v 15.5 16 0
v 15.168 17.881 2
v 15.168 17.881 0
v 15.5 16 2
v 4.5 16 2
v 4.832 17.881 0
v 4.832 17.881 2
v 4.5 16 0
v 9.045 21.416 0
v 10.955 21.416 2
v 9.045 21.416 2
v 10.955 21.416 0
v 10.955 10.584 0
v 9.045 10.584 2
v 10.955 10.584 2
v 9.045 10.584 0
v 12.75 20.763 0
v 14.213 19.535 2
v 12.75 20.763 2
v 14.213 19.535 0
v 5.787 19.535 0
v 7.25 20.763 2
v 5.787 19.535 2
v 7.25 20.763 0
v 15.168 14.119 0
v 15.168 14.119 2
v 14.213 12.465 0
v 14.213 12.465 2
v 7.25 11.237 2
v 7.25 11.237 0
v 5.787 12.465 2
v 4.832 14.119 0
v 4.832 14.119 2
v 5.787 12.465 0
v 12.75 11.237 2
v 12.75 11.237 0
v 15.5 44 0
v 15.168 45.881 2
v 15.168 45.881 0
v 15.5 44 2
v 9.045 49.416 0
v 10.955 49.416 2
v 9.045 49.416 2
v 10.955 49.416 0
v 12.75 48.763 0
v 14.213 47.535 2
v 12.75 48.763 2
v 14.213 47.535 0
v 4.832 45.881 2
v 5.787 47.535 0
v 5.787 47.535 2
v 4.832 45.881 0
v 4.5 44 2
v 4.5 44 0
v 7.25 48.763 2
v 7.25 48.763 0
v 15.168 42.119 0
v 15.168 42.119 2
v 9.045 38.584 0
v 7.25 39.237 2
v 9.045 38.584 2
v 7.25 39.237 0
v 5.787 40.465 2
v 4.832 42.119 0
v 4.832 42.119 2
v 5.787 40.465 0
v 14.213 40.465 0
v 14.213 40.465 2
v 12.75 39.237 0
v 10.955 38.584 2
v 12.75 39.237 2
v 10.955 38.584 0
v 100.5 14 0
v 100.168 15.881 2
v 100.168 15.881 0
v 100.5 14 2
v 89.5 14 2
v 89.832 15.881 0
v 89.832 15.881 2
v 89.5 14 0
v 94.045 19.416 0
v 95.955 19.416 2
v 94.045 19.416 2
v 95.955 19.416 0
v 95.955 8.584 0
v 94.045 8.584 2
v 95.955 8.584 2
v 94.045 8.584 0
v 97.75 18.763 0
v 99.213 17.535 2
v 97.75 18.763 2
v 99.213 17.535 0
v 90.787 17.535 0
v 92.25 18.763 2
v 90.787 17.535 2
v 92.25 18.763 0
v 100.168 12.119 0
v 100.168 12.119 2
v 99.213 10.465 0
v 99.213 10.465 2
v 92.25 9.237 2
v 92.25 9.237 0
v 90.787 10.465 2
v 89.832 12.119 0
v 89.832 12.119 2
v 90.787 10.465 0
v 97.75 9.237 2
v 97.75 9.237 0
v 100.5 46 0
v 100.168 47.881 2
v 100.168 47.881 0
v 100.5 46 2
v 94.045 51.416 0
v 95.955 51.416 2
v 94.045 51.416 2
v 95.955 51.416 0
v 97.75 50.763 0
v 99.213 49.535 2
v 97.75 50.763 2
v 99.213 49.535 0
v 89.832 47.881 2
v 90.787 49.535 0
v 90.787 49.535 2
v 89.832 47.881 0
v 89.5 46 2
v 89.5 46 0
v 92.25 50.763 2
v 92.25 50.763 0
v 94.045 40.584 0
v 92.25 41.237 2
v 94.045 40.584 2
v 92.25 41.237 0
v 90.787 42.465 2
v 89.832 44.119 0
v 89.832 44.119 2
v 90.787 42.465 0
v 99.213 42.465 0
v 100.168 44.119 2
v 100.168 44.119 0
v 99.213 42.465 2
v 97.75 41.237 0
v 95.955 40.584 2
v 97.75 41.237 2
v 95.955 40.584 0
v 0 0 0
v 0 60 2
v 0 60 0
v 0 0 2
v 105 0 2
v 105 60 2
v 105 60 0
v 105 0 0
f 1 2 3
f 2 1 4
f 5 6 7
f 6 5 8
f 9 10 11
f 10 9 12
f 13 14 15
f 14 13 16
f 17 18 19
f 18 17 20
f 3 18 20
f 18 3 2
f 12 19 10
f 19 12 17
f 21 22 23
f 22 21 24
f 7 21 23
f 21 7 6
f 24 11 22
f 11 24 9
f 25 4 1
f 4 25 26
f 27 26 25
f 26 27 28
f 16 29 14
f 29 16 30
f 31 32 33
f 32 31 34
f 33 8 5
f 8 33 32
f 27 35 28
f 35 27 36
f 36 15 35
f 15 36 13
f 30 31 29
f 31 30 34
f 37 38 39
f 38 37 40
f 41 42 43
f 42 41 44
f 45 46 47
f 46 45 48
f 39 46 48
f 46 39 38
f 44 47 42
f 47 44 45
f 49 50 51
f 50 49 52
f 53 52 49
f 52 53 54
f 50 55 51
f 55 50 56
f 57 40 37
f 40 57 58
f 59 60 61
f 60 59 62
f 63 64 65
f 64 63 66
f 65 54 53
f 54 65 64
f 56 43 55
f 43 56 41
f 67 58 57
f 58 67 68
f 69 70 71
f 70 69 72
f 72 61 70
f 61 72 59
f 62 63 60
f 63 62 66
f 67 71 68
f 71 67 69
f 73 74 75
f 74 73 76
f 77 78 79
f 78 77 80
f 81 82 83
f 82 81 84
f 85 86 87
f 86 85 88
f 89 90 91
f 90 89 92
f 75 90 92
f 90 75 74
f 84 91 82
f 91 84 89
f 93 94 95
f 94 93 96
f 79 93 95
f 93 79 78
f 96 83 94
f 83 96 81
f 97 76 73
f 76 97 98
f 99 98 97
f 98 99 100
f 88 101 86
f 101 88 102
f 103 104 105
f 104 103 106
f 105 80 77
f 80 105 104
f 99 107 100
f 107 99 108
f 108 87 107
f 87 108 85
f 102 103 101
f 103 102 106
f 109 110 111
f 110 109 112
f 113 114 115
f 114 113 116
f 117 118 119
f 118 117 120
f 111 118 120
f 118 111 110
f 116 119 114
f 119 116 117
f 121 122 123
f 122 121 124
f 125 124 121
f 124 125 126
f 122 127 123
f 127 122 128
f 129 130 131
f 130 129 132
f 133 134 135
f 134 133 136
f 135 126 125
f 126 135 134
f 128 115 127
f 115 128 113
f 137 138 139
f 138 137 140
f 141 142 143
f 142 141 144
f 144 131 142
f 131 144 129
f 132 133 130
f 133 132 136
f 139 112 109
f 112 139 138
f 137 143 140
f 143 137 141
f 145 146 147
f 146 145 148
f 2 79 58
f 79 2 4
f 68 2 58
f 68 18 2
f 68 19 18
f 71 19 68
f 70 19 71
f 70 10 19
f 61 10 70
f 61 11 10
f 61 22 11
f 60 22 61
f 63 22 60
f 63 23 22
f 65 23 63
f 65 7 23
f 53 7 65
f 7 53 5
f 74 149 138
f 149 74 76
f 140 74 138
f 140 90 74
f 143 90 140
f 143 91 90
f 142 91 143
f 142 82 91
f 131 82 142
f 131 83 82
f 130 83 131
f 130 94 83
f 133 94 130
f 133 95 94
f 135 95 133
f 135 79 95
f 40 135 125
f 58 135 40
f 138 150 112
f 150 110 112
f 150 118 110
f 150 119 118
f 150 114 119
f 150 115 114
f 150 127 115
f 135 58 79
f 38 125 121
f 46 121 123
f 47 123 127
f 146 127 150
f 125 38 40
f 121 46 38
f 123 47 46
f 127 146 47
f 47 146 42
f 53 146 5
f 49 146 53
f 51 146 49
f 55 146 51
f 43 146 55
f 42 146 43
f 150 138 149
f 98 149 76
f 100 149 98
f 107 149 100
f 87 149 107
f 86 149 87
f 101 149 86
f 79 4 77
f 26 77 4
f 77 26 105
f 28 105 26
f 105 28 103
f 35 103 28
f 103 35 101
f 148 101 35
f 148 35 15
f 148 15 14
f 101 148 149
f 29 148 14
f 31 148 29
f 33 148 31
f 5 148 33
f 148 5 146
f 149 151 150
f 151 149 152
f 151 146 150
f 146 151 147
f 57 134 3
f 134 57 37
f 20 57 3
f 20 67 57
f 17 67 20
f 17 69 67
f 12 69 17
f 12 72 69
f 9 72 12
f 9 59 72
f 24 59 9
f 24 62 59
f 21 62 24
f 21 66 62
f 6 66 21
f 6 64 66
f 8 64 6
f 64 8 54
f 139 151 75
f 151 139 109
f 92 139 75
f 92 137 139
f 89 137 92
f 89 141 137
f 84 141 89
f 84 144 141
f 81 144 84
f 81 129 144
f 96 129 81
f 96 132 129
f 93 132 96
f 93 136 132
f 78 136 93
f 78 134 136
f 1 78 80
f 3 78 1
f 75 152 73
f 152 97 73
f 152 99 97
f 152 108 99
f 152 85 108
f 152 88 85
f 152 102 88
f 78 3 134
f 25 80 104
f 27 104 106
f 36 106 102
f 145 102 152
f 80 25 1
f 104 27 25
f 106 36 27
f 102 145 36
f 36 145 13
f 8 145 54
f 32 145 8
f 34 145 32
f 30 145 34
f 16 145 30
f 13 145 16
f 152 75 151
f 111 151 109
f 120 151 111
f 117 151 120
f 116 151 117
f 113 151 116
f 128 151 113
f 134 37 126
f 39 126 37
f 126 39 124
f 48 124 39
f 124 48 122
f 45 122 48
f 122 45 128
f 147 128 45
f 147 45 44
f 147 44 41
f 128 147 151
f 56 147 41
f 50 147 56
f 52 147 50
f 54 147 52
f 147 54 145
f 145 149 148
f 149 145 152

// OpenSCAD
difference() {
    cube(size = [105, 60, 2], center = false);
    
    translate([10, 30, 0]) {
        translate([0, -14, 0]) cylinder(h=20, r=5.5, center=true);
        translate([0, 14, 0]) cylinder(h=20, r=5.5, center=true);
    }
    
    translate([95, 30, 0]) {
        translate([0, -16, 0]) cylinder(h=20, r=5.5, center=true);
        translate([0, 16, 0]) cylinder(h=20, r=5.5, center=true);
    }
}
